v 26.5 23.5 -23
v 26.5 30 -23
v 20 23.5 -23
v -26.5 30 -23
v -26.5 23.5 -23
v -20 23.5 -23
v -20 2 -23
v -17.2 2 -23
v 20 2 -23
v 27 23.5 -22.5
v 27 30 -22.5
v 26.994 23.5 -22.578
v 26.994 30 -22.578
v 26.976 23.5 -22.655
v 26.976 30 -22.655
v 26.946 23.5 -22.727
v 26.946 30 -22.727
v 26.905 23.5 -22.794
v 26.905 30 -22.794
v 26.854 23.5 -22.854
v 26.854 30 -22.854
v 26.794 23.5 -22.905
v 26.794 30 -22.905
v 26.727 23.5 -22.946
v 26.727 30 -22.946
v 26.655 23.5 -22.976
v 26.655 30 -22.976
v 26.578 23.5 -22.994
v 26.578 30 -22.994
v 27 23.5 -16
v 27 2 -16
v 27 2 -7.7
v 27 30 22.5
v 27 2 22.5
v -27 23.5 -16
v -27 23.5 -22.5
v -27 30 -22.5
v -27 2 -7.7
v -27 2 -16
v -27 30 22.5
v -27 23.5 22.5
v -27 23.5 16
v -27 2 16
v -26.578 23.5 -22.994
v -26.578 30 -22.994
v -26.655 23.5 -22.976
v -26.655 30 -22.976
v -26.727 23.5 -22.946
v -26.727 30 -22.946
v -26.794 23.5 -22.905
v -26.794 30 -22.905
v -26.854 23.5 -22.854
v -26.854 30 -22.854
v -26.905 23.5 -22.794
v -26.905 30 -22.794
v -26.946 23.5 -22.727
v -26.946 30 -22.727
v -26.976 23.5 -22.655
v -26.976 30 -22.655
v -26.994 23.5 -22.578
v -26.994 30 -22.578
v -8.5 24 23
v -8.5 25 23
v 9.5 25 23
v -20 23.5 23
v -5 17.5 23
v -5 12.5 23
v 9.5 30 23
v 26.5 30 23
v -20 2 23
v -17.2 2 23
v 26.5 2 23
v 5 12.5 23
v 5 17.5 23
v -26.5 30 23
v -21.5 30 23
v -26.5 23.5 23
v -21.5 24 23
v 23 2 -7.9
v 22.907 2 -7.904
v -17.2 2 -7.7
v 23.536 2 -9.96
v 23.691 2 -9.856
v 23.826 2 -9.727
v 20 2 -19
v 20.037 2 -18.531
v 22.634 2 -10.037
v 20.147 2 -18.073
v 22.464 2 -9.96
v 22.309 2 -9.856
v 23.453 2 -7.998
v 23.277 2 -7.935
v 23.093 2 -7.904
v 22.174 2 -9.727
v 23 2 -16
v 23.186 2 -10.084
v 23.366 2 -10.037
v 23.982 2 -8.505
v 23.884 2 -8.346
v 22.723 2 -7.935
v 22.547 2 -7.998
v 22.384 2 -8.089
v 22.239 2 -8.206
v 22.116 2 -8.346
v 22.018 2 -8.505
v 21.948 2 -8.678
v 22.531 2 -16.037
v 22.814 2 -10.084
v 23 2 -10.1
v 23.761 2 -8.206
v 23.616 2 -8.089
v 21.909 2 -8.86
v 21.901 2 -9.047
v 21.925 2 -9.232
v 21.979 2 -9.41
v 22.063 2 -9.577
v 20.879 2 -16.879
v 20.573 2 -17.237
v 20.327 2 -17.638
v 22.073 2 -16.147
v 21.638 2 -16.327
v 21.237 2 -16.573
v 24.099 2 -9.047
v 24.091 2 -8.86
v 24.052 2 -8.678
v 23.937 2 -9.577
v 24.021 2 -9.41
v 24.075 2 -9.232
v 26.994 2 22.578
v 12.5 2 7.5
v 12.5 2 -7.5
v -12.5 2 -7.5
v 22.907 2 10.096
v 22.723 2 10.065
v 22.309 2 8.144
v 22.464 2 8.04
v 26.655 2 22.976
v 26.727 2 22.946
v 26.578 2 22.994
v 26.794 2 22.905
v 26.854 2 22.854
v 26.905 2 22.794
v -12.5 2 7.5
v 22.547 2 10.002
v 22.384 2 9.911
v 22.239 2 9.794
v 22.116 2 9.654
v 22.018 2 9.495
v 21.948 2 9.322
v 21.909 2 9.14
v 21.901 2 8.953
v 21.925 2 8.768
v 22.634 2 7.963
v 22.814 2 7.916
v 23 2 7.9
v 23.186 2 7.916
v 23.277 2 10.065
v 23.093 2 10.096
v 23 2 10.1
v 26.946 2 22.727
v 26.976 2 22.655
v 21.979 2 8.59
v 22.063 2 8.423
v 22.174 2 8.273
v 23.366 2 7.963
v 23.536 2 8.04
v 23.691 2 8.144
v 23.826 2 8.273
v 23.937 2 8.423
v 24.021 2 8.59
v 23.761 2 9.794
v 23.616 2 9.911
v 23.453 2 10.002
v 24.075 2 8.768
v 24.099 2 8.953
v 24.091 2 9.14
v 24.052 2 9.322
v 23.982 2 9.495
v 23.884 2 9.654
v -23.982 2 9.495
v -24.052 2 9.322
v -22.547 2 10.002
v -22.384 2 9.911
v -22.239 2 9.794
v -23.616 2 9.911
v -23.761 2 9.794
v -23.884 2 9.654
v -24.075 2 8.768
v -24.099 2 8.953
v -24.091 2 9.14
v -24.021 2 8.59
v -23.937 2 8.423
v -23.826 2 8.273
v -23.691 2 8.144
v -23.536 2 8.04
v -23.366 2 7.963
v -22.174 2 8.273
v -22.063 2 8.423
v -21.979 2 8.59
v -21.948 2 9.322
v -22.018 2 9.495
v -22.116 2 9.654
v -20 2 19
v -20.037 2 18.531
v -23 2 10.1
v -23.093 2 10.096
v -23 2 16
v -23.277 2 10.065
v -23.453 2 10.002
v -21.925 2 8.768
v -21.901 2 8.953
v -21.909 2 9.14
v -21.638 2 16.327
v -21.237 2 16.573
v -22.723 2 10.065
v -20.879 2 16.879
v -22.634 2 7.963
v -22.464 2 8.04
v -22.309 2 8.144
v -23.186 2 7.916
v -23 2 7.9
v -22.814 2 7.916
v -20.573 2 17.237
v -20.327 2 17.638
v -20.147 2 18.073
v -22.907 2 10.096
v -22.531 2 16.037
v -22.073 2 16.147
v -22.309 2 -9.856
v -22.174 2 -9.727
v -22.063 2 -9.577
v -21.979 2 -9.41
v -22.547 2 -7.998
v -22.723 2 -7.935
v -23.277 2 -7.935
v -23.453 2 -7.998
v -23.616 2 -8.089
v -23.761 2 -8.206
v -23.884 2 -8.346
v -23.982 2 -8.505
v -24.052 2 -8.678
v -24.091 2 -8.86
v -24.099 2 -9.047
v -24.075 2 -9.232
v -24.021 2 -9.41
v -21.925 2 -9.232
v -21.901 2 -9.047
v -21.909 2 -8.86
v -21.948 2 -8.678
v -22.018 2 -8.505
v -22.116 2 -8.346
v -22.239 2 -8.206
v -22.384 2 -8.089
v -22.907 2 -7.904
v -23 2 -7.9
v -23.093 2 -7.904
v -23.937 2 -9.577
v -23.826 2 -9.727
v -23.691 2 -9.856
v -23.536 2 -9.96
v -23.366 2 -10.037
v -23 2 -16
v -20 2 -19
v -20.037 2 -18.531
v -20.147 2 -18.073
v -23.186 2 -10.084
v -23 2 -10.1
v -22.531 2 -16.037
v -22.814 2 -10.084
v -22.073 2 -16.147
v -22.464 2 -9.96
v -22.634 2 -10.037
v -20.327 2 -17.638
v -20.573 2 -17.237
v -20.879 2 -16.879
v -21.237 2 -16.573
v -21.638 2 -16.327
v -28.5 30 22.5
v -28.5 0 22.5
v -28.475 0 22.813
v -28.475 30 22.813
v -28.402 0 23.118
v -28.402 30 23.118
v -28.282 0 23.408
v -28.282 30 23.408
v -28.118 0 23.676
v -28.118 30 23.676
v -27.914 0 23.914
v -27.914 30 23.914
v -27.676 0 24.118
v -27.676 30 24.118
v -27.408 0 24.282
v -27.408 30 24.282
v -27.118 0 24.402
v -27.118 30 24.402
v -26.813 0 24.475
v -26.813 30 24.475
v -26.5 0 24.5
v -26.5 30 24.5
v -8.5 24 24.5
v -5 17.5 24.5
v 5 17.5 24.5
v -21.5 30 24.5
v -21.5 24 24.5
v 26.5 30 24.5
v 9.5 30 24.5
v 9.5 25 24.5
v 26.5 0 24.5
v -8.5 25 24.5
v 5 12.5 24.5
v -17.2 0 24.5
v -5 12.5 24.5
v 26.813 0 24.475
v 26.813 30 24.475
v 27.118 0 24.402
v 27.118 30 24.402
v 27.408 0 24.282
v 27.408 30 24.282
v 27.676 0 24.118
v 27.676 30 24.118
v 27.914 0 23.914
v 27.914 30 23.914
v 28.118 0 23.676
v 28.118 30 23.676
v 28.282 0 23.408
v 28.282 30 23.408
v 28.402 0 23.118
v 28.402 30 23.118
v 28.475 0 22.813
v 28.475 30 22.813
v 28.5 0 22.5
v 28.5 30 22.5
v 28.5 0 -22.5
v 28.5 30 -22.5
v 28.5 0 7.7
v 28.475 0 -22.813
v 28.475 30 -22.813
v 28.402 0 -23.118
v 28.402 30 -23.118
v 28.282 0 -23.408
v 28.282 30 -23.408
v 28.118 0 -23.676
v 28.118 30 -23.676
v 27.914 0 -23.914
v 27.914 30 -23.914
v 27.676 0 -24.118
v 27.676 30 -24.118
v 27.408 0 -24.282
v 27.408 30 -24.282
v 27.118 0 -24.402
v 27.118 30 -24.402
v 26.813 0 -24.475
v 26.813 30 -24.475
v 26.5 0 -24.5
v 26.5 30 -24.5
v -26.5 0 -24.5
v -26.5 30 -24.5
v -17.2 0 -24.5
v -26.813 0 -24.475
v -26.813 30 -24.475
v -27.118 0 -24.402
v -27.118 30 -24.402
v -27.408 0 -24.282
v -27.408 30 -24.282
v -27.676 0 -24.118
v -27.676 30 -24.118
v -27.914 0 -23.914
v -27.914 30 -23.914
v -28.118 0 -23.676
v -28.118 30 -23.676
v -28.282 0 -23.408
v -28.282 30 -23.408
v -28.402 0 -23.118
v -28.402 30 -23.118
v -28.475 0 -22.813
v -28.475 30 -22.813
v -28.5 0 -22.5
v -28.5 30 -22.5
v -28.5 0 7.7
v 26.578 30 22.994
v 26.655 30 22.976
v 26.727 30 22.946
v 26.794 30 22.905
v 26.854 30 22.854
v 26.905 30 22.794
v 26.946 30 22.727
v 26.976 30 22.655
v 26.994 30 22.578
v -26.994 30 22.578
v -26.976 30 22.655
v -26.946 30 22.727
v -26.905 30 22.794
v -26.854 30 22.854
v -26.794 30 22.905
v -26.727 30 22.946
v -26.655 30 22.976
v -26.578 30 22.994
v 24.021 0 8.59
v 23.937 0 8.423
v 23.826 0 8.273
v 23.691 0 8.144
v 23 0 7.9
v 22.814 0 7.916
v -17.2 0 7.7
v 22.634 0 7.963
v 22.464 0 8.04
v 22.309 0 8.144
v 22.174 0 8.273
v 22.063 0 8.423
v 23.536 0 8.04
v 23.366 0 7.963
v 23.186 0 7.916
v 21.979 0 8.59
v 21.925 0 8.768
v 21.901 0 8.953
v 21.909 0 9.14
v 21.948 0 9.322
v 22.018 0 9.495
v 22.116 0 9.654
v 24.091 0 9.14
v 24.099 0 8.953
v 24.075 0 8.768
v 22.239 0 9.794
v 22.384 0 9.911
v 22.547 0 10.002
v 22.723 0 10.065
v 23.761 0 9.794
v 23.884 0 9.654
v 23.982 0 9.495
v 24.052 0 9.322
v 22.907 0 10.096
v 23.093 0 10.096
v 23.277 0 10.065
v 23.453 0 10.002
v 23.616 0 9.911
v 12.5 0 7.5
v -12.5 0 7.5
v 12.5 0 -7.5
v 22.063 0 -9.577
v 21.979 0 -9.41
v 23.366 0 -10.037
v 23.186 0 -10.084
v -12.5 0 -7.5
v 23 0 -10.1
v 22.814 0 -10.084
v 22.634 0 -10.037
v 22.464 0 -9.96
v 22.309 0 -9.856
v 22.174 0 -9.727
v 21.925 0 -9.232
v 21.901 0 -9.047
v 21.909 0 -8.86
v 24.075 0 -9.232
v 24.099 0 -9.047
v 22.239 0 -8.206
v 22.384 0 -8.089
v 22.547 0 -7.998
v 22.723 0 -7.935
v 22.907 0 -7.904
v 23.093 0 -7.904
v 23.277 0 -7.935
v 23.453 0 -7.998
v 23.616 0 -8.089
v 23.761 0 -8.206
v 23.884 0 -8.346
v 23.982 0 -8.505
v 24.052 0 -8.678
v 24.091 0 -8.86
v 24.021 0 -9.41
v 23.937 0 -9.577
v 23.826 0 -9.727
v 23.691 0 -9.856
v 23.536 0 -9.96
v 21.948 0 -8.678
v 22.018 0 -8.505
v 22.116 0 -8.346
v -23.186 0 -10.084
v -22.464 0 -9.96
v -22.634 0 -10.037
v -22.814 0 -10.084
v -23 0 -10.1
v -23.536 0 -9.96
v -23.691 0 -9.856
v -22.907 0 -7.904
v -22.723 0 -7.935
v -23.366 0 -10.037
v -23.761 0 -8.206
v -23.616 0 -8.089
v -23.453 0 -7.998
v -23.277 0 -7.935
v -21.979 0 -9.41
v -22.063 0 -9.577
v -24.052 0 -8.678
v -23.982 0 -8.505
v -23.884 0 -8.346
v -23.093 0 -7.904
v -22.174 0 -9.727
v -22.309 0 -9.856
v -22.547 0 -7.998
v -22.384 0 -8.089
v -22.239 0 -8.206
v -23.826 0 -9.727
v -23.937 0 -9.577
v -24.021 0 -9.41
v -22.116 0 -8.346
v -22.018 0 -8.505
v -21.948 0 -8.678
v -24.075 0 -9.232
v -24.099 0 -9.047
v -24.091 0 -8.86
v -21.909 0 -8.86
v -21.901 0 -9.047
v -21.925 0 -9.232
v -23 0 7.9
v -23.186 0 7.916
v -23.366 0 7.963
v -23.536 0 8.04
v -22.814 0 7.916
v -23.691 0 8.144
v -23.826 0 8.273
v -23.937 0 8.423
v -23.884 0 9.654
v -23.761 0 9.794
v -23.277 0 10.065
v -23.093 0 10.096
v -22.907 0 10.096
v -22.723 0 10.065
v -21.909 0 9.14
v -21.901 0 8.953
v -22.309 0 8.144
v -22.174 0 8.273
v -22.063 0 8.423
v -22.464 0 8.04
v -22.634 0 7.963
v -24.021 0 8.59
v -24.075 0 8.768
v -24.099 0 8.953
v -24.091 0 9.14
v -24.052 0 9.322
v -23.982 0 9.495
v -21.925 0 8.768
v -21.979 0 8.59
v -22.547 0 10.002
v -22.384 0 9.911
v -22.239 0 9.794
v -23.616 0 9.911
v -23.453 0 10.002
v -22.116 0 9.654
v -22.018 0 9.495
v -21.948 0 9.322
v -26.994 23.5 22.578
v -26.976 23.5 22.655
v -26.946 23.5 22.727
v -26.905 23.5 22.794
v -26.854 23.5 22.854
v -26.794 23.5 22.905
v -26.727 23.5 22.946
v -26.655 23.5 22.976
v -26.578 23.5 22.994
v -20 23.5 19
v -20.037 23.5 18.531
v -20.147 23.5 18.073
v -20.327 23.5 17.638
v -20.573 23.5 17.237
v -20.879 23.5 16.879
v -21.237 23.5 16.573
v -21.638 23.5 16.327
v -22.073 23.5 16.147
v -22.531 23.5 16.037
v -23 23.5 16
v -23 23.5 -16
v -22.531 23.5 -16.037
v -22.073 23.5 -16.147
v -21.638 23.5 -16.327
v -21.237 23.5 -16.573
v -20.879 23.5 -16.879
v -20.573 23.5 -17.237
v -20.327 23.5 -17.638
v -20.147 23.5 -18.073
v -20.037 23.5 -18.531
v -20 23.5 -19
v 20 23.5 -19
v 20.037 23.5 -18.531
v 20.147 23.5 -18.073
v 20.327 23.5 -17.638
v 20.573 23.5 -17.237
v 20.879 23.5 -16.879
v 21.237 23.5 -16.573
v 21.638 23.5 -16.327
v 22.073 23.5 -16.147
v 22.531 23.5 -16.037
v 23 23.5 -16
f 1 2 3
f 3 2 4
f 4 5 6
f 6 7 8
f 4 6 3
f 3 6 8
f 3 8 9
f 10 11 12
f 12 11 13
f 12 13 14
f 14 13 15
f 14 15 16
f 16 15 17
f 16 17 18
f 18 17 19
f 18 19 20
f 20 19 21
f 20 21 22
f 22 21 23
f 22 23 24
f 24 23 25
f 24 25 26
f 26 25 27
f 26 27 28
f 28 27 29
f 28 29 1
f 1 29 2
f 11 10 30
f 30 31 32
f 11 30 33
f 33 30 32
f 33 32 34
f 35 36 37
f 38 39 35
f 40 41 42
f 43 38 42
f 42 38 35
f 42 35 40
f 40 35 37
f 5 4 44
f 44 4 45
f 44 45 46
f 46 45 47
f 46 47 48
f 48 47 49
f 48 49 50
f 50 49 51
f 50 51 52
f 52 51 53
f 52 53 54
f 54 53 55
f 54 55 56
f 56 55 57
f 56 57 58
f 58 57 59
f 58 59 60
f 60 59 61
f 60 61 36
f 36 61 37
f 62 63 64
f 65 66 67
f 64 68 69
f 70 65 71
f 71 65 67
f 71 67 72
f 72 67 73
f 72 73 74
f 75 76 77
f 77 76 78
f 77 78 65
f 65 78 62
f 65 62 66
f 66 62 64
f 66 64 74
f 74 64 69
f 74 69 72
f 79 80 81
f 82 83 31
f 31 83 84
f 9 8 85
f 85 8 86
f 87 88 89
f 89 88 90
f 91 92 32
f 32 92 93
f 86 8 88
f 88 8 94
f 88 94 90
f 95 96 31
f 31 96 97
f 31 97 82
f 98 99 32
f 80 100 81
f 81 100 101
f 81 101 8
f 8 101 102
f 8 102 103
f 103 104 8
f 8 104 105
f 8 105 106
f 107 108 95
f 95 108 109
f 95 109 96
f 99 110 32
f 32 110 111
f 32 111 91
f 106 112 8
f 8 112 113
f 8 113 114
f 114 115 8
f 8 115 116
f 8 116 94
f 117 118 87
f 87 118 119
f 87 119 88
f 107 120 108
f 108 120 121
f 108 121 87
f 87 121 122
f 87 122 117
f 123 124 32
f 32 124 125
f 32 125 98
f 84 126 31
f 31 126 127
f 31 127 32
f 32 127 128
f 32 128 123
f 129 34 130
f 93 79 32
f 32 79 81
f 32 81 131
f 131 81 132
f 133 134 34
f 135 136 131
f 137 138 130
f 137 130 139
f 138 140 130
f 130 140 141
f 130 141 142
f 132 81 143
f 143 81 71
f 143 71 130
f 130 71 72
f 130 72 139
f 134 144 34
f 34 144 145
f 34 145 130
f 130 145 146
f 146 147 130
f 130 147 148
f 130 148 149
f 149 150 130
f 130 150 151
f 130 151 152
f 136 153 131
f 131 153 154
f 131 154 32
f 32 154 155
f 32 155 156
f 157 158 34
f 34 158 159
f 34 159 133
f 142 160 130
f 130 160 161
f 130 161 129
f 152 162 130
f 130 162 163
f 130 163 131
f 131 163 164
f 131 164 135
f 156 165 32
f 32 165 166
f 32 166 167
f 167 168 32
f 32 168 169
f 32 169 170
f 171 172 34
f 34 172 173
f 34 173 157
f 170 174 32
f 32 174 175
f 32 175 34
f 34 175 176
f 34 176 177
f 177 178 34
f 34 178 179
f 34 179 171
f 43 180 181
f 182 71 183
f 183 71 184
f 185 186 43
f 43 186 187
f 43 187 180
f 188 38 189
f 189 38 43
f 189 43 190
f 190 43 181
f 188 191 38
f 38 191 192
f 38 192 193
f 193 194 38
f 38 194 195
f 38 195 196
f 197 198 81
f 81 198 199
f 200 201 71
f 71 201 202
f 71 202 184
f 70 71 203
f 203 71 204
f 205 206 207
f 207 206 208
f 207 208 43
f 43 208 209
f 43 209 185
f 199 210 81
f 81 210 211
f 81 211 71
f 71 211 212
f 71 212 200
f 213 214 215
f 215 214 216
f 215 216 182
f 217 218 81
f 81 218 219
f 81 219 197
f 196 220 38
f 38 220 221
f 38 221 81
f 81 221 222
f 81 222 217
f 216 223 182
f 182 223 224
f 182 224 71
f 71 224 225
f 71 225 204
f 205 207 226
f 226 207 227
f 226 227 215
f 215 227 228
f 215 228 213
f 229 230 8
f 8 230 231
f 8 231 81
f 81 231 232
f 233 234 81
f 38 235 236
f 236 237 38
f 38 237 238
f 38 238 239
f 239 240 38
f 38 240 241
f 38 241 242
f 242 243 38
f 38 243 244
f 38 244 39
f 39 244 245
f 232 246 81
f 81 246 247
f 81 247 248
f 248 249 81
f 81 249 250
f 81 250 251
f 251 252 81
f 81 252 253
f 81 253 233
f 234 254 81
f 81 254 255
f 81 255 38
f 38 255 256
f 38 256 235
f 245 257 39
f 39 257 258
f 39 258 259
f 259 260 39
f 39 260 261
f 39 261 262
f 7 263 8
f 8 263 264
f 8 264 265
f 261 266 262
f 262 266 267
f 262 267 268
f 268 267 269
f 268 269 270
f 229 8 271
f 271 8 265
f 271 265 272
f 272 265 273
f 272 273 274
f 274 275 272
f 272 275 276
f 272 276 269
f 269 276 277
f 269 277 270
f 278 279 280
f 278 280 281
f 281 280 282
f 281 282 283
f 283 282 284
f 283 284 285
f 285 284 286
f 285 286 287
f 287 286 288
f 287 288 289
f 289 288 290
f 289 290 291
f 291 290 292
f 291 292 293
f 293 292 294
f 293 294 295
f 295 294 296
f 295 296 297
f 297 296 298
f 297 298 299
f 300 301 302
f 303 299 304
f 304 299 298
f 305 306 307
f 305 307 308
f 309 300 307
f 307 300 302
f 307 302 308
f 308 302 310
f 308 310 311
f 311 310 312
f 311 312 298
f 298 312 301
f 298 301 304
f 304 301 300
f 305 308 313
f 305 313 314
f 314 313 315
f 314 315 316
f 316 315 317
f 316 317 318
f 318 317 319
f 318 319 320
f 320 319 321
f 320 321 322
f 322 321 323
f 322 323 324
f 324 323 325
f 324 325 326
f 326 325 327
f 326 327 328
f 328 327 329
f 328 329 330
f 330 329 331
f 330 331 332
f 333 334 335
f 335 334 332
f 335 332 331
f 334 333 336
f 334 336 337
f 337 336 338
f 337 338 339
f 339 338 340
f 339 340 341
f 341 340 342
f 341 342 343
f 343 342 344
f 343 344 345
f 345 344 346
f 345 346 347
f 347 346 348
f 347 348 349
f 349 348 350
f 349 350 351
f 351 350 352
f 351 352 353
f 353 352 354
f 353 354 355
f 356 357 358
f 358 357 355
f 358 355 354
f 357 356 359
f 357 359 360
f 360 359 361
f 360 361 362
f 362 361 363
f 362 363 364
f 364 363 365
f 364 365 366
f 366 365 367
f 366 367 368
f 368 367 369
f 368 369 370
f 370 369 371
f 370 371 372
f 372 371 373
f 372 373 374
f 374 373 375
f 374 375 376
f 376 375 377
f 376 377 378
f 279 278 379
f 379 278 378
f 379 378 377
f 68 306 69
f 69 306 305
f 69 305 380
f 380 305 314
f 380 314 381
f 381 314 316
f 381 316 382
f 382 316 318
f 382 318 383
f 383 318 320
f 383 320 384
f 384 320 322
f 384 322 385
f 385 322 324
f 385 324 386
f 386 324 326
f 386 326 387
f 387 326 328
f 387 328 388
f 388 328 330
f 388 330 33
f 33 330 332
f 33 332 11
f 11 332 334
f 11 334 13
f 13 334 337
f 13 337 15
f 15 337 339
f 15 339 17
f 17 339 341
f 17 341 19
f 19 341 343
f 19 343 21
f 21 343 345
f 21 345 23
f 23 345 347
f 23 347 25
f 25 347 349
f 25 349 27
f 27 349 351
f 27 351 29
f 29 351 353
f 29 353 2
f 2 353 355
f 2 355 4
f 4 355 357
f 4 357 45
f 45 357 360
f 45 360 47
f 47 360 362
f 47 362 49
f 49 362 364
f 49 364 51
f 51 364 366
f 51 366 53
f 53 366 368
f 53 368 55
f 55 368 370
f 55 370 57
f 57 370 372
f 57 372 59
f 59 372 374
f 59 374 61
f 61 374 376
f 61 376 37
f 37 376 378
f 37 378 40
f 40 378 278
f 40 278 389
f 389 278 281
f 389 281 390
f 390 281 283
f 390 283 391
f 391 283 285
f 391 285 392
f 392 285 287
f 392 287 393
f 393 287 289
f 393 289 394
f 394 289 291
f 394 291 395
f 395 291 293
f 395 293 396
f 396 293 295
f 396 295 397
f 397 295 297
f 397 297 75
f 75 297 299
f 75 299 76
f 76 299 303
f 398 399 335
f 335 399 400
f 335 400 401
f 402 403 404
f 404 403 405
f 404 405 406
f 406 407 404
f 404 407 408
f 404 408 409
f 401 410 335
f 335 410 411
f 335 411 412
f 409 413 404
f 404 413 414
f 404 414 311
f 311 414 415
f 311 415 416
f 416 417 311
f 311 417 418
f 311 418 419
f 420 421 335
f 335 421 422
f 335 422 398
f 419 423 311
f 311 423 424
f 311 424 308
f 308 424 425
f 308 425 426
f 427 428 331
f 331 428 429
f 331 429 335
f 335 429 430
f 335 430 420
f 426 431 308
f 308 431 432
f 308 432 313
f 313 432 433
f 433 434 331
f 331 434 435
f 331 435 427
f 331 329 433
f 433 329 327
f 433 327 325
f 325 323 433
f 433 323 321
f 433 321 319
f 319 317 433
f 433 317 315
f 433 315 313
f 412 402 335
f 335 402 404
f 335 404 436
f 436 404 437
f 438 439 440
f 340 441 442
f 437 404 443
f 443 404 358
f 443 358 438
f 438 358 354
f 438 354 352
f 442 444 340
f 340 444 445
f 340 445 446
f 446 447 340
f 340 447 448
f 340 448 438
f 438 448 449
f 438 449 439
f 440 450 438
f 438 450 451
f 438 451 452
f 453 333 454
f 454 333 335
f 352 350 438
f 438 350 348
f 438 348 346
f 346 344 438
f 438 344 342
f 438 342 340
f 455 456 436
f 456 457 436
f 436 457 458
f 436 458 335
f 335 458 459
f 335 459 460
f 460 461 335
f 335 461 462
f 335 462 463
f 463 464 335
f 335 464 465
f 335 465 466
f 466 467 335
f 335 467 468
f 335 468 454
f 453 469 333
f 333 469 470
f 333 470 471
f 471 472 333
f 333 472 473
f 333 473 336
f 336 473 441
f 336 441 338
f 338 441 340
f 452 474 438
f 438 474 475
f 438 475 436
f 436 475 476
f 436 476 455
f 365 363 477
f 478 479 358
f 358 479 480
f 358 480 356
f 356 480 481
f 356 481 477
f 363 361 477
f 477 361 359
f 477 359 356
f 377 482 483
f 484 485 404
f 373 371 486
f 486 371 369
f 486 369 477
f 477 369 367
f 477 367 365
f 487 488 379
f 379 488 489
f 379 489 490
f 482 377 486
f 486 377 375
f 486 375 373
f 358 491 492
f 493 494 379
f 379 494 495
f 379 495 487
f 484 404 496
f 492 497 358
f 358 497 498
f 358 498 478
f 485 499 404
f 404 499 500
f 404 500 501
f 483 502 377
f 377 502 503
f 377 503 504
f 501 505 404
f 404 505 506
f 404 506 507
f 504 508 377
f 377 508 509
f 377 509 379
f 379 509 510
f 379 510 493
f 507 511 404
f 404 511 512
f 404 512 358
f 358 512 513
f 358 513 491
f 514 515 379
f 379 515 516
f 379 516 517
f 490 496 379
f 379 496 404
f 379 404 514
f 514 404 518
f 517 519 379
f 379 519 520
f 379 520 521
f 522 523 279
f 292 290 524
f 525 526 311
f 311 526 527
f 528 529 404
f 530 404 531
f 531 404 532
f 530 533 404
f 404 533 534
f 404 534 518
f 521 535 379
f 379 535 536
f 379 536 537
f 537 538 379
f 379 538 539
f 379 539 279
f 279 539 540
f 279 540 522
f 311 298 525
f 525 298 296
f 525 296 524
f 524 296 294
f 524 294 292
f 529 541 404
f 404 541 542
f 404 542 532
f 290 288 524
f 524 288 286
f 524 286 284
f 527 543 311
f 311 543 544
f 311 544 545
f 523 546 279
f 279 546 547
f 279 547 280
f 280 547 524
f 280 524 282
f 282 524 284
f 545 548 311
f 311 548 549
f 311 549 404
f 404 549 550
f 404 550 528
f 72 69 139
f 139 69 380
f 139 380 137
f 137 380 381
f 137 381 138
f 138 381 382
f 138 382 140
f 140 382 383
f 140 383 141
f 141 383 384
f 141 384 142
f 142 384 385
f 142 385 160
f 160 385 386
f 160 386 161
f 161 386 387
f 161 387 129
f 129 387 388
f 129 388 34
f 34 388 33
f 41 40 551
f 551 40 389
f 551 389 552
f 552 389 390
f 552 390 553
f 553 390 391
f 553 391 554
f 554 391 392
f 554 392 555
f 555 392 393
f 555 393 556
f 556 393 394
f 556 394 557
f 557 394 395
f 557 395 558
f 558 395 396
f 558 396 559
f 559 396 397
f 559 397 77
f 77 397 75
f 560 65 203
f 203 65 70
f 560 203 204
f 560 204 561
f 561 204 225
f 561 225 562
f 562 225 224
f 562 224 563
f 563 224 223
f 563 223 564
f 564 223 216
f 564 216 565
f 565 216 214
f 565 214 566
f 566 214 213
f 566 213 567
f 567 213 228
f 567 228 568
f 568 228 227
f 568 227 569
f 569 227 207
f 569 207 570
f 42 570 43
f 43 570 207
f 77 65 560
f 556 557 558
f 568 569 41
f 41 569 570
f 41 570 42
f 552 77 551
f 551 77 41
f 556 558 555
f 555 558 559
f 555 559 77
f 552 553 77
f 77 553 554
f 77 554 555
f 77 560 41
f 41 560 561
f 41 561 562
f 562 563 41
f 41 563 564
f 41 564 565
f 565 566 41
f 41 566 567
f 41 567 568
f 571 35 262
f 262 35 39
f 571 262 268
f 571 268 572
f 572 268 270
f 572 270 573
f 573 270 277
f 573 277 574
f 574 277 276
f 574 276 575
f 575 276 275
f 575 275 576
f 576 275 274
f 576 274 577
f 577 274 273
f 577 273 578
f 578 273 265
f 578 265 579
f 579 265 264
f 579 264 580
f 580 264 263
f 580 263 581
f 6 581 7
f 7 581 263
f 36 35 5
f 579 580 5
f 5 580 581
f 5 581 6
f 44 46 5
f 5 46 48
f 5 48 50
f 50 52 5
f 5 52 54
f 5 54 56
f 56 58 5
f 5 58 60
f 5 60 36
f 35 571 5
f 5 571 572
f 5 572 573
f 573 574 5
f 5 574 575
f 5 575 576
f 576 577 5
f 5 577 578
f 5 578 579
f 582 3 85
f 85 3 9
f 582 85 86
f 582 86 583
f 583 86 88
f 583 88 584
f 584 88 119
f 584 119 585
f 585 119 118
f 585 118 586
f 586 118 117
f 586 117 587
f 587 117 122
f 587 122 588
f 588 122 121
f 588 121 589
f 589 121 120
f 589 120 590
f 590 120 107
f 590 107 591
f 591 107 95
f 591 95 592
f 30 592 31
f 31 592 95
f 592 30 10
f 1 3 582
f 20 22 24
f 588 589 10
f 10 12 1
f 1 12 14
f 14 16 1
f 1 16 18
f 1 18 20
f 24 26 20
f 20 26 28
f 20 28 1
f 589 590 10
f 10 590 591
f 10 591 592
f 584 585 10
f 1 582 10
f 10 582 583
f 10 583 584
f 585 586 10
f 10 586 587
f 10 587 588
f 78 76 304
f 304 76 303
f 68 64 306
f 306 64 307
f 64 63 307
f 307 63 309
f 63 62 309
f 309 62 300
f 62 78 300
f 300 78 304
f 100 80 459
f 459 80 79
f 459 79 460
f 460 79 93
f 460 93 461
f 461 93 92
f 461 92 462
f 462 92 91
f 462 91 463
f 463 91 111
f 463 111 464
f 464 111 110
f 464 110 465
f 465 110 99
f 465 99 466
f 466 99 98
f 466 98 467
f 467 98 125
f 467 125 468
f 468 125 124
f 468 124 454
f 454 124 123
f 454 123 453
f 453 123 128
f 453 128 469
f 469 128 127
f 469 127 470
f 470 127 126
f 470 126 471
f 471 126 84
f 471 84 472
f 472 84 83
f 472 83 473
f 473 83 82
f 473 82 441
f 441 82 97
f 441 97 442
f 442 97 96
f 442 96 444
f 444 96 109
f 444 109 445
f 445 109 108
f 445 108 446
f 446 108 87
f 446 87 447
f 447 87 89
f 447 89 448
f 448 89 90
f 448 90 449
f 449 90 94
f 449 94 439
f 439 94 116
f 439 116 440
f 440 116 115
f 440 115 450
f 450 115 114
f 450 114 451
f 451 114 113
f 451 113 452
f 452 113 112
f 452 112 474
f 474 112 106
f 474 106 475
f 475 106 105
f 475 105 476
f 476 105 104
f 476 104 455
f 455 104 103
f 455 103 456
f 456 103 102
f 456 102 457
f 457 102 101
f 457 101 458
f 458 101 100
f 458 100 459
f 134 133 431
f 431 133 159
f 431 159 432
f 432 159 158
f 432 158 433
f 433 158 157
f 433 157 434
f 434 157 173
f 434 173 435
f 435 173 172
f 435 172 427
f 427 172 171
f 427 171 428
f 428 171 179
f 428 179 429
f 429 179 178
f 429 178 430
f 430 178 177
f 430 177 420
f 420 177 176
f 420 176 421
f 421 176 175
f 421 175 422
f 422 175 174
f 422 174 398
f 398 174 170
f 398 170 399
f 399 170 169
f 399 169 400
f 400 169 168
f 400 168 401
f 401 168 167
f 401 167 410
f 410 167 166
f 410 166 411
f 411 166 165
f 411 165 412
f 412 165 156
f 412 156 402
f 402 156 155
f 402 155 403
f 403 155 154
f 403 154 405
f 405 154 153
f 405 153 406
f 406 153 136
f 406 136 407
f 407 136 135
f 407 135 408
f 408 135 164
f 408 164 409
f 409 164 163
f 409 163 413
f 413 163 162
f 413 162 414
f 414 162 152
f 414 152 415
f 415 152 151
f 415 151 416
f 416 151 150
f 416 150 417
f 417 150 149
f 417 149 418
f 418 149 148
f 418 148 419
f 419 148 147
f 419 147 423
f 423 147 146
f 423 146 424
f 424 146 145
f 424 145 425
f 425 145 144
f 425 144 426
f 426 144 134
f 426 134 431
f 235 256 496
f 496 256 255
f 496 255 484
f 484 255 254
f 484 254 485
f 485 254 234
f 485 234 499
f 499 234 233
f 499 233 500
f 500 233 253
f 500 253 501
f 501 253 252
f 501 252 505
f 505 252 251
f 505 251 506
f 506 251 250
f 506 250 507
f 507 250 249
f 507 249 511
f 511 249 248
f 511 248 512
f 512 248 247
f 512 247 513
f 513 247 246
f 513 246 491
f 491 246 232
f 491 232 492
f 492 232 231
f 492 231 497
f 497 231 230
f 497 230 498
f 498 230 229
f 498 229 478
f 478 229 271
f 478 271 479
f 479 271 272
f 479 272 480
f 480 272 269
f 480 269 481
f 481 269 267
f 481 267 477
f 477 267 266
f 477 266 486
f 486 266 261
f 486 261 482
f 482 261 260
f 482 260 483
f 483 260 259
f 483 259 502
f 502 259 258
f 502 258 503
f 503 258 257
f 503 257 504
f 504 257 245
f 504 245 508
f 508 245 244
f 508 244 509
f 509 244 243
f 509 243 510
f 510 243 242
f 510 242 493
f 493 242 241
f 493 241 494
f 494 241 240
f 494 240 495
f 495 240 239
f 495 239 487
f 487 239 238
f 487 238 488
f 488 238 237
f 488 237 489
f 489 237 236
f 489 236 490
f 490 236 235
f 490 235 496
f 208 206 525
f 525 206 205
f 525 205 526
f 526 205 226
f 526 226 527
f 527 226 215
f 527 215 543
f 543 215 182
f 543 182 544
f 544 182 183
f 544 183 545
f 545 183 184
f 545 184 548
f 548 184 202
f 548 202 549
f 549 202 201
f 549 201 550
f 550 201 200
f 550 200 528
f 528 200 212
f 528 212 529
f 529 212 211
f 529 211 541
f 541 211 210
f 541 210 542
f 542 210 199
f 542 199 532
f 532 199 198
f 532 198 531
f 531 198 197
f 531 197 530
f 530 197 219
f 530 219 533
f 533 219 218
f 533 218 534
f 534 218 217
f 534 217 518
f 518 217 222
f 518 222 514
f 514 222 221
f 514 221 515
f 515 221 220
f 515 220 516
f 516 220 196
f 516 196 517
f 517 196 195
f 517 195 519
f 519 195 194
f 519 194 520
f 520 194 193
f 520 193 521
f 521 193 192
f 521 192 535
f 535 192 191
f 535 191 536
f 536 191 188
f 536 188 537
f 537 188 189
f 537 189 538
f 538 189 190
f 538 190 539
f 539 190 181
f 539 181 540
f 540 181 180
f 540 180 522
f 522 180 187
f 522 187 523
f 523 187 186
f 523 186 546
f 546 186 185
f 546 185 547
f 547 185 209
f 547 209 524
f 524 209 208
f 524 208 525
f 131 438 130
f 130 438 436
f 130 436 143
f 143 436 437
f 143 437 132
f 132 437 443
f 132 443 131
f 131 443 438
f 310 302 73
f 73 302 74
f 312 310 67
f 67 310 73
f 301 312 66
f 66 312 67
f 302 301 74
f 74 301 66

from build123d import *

# Parameters (mm, degrees)
EXTRUDE_1_DEPTH         = 30
CUT_EXTRUDE_1_DEPTH     = 28
EXTRUDE_START           = 21.5
EXTRUDE_2_DEPTH         = 21.5
CUT_EXTRUDE_2_DEPTH     = 1.5
HOLE_WIZARD_2_2_2_2_1_D = 2.2
CUT_EXTRUDE_3_REACH     = 48.867
SKETCH_7_W              = 25
SKETCH_7_H              = 15
CUT_EXTRUDE_4_REACH     = 66.135
SKETCH_8_W              = 10
SKETCH_8_H              = 5


with BuildPart() as part:
    # 草图1 → 凸台-拉伸1 (new body)
    with BuildSketch(Plane(origin=(0, 0, 0), x_dir=(1, 0, 0), z_dir=(0, 1, 0))):
        with BuildLine():
            Line((-26.5, -24.5), (26.5, -24.5))
            ThreePointArc((26.5, -24.5), (27.914213562, -23.914213562), (28.5, -22.5))
            Line((28.5, -22.5), (28.5, 22.5))
            ThreePointArc((28.5, 22.5), (27.914213562, 23.914213562), (26.5, 24.5))
            Line((26.5, 24.5), (-26.5, 24.5))
            ThreePointArc((-26.5, 24.5), (-27.914213562, 23.914213562), (-28.5, 22.5))
            Line((-28.5, 22.5), (-28.5, -22.5))
            ThreePointArc((-28.5, -22.5), (-27.914213562, -23.914213562), (-26.5, -24.5))
        make_face()
    extrude(amount=EXTRUDE_1_DEPTH)

    # 草图2 → 切除-拉伸1 (cut)
    with BuildSketch(Plane(origin=(0, 30, 0), x_dir=(1, 0, 0), z_dir=(0, 1, 0))):
        with BuildLine():
            Line((-26.5, -23), (26.5, -23))
            ThreePointArc((26.5, -23), (26.853553391, -22.853553391), (27, -22.5))
            Line((27, -22.5), (27, 22.5))
            ThreePointArc((27, 22.5), (26.853553391, 22.853553391), (26.5, 23))
            Line((26.5, 23), (-26.5, 23))
            ThreePointArc((-26.5, 23), (-26.853553391, 22.853553391), (-27, 22.5))
            Line((-27, 22.5), (-27, -22.5))
            ThreePointArc((-27, -22.5), (-26.853553391, -22.853553391), (-26.5, -23))
        make_face()
    extrude(amount=-CUT_EXTRUDE_1_DEPTH, mode=Mode.SUBTRACT)

    # 草图3 → 凸台-拉伸2 (add)
    with BuildSketch(Plane(origin=(0, 2, 0), x_dir=(1, 0, 0), z_dir=(0, 1, 0)).offset(EXTRUDE_START)):
        with BuildLine():
            Line((-27, -16), (-23, -16))
            ThreePointArc((-23, -16), (-20.878679656, -16.878679656), (-20, -19))
            Line((-20, -19), (-20, -23))
            Line((-20, -23), (-26.5, -23))
            ThreePointArc((-26.5, -23), (-26.853553391, -22.853553391), (-27, -22.5))
            Line((-27, -22.5), (-27, -16))
        make_face()
        with BuildLine():
            Line((-27, 16), (-23, 16))
            ThreePointArc((-23, 16), (-20.878679656, 16.878679656), (-20, 19))
            Line((-20, 19), (-20, 23))
            Line((-20, 23), (-26.5, 23))
            ThreePointArc((-26.5, 23), (-26.853553391, 22.853553391), (-27, 22.5))
            Line((-27, 22.5), (-27, 16))
        make_face()
        with BuildLine():
            Line((20, 23), (20, 19))
            ThreePointArc((20, 19), (20.878679656, 16.878679656), (23, 16))
            Line((23, 16), (27, 16))
            Line((27, 16), (27, 22.5))
            ThreePointArc((27, 22.5), (26.853553391, 22.853553391), (26.5, 23))
            Line((26.5, 23), (20, 23))
        make_face()
    extrude(amount=-EXTRUDE_2_DEPTH)

    # 草图4 → 切除-拉伸2 (cut)
    with BuildSketch(Plane.XY.offset(24.5)):
        Polygon((-21.5, 30), (9.5, 30), (9.5, 25), (-8.5, 25), (-8.5, 24), (-21.5, 24), align=None)
    extrude(amount=-CUT_EXTRUDE_2_DEPTH, mode=Mode.SUBTRACT)

    # Ø2.2 (2.2) 直径孔1 (through all)
    with Locations(Plane(origin=(0, 0, 0), x_dir=(-1, 0, 0), z_dir=(0, -1, 0))):
        with Locations((23, -9), (23, 9), (-23, -9), (-23, 9)):
            Hole(HOLE_WIZARD_2_2_2_2_1_D / 2)

    # 草图7 → 切除-拉伸3 (cut, up to next)
    with BuildSketch(Plane(origin=(0, 2, 0), x_dir=(1, 0, 0), z_dir=(0, 1, 0)), mode=Mode.PRIVATE) as cut_extrude_3_sk1:
        Rectangle(SKETCH_7_W, SKETCH_7_H)
    cut_extrude_3_tool1 = extrude(cut_extrude_3_sk1.sketch, amount=-CUT_EXTRUDE_3_REACH, mode=Mode.PRIVATE) & part.part
    add(cut_extrude_3_tool1.solids().sort_by_distance((0, 2, 0))[0], mode=Mode.SUBTRACT)

    # 草图8 → 切除-拉伸4 (cut, up to next)
    with BuildSketch(Plane.XY.offset(24.5), mode=Mode.PRIVATE) as cut_extrude_4_sk1:
        with Locations((0, 15)):
            Rectangle(SKETCH_8_W, SKETCH_8_H)
    cut_extrude_4_tool1 = extrude(cut_extrude_4_sk1.sketch, amount=-CUT_EXTRUDE_4_REACH, mode=Mode.PRIVATE) & part.part
    add(cut_extrude_4_tool1.solids().sort_by_distance((0, 15, 24.5))[0], mode=Mode.SUBTRACT)


solid = part.part
